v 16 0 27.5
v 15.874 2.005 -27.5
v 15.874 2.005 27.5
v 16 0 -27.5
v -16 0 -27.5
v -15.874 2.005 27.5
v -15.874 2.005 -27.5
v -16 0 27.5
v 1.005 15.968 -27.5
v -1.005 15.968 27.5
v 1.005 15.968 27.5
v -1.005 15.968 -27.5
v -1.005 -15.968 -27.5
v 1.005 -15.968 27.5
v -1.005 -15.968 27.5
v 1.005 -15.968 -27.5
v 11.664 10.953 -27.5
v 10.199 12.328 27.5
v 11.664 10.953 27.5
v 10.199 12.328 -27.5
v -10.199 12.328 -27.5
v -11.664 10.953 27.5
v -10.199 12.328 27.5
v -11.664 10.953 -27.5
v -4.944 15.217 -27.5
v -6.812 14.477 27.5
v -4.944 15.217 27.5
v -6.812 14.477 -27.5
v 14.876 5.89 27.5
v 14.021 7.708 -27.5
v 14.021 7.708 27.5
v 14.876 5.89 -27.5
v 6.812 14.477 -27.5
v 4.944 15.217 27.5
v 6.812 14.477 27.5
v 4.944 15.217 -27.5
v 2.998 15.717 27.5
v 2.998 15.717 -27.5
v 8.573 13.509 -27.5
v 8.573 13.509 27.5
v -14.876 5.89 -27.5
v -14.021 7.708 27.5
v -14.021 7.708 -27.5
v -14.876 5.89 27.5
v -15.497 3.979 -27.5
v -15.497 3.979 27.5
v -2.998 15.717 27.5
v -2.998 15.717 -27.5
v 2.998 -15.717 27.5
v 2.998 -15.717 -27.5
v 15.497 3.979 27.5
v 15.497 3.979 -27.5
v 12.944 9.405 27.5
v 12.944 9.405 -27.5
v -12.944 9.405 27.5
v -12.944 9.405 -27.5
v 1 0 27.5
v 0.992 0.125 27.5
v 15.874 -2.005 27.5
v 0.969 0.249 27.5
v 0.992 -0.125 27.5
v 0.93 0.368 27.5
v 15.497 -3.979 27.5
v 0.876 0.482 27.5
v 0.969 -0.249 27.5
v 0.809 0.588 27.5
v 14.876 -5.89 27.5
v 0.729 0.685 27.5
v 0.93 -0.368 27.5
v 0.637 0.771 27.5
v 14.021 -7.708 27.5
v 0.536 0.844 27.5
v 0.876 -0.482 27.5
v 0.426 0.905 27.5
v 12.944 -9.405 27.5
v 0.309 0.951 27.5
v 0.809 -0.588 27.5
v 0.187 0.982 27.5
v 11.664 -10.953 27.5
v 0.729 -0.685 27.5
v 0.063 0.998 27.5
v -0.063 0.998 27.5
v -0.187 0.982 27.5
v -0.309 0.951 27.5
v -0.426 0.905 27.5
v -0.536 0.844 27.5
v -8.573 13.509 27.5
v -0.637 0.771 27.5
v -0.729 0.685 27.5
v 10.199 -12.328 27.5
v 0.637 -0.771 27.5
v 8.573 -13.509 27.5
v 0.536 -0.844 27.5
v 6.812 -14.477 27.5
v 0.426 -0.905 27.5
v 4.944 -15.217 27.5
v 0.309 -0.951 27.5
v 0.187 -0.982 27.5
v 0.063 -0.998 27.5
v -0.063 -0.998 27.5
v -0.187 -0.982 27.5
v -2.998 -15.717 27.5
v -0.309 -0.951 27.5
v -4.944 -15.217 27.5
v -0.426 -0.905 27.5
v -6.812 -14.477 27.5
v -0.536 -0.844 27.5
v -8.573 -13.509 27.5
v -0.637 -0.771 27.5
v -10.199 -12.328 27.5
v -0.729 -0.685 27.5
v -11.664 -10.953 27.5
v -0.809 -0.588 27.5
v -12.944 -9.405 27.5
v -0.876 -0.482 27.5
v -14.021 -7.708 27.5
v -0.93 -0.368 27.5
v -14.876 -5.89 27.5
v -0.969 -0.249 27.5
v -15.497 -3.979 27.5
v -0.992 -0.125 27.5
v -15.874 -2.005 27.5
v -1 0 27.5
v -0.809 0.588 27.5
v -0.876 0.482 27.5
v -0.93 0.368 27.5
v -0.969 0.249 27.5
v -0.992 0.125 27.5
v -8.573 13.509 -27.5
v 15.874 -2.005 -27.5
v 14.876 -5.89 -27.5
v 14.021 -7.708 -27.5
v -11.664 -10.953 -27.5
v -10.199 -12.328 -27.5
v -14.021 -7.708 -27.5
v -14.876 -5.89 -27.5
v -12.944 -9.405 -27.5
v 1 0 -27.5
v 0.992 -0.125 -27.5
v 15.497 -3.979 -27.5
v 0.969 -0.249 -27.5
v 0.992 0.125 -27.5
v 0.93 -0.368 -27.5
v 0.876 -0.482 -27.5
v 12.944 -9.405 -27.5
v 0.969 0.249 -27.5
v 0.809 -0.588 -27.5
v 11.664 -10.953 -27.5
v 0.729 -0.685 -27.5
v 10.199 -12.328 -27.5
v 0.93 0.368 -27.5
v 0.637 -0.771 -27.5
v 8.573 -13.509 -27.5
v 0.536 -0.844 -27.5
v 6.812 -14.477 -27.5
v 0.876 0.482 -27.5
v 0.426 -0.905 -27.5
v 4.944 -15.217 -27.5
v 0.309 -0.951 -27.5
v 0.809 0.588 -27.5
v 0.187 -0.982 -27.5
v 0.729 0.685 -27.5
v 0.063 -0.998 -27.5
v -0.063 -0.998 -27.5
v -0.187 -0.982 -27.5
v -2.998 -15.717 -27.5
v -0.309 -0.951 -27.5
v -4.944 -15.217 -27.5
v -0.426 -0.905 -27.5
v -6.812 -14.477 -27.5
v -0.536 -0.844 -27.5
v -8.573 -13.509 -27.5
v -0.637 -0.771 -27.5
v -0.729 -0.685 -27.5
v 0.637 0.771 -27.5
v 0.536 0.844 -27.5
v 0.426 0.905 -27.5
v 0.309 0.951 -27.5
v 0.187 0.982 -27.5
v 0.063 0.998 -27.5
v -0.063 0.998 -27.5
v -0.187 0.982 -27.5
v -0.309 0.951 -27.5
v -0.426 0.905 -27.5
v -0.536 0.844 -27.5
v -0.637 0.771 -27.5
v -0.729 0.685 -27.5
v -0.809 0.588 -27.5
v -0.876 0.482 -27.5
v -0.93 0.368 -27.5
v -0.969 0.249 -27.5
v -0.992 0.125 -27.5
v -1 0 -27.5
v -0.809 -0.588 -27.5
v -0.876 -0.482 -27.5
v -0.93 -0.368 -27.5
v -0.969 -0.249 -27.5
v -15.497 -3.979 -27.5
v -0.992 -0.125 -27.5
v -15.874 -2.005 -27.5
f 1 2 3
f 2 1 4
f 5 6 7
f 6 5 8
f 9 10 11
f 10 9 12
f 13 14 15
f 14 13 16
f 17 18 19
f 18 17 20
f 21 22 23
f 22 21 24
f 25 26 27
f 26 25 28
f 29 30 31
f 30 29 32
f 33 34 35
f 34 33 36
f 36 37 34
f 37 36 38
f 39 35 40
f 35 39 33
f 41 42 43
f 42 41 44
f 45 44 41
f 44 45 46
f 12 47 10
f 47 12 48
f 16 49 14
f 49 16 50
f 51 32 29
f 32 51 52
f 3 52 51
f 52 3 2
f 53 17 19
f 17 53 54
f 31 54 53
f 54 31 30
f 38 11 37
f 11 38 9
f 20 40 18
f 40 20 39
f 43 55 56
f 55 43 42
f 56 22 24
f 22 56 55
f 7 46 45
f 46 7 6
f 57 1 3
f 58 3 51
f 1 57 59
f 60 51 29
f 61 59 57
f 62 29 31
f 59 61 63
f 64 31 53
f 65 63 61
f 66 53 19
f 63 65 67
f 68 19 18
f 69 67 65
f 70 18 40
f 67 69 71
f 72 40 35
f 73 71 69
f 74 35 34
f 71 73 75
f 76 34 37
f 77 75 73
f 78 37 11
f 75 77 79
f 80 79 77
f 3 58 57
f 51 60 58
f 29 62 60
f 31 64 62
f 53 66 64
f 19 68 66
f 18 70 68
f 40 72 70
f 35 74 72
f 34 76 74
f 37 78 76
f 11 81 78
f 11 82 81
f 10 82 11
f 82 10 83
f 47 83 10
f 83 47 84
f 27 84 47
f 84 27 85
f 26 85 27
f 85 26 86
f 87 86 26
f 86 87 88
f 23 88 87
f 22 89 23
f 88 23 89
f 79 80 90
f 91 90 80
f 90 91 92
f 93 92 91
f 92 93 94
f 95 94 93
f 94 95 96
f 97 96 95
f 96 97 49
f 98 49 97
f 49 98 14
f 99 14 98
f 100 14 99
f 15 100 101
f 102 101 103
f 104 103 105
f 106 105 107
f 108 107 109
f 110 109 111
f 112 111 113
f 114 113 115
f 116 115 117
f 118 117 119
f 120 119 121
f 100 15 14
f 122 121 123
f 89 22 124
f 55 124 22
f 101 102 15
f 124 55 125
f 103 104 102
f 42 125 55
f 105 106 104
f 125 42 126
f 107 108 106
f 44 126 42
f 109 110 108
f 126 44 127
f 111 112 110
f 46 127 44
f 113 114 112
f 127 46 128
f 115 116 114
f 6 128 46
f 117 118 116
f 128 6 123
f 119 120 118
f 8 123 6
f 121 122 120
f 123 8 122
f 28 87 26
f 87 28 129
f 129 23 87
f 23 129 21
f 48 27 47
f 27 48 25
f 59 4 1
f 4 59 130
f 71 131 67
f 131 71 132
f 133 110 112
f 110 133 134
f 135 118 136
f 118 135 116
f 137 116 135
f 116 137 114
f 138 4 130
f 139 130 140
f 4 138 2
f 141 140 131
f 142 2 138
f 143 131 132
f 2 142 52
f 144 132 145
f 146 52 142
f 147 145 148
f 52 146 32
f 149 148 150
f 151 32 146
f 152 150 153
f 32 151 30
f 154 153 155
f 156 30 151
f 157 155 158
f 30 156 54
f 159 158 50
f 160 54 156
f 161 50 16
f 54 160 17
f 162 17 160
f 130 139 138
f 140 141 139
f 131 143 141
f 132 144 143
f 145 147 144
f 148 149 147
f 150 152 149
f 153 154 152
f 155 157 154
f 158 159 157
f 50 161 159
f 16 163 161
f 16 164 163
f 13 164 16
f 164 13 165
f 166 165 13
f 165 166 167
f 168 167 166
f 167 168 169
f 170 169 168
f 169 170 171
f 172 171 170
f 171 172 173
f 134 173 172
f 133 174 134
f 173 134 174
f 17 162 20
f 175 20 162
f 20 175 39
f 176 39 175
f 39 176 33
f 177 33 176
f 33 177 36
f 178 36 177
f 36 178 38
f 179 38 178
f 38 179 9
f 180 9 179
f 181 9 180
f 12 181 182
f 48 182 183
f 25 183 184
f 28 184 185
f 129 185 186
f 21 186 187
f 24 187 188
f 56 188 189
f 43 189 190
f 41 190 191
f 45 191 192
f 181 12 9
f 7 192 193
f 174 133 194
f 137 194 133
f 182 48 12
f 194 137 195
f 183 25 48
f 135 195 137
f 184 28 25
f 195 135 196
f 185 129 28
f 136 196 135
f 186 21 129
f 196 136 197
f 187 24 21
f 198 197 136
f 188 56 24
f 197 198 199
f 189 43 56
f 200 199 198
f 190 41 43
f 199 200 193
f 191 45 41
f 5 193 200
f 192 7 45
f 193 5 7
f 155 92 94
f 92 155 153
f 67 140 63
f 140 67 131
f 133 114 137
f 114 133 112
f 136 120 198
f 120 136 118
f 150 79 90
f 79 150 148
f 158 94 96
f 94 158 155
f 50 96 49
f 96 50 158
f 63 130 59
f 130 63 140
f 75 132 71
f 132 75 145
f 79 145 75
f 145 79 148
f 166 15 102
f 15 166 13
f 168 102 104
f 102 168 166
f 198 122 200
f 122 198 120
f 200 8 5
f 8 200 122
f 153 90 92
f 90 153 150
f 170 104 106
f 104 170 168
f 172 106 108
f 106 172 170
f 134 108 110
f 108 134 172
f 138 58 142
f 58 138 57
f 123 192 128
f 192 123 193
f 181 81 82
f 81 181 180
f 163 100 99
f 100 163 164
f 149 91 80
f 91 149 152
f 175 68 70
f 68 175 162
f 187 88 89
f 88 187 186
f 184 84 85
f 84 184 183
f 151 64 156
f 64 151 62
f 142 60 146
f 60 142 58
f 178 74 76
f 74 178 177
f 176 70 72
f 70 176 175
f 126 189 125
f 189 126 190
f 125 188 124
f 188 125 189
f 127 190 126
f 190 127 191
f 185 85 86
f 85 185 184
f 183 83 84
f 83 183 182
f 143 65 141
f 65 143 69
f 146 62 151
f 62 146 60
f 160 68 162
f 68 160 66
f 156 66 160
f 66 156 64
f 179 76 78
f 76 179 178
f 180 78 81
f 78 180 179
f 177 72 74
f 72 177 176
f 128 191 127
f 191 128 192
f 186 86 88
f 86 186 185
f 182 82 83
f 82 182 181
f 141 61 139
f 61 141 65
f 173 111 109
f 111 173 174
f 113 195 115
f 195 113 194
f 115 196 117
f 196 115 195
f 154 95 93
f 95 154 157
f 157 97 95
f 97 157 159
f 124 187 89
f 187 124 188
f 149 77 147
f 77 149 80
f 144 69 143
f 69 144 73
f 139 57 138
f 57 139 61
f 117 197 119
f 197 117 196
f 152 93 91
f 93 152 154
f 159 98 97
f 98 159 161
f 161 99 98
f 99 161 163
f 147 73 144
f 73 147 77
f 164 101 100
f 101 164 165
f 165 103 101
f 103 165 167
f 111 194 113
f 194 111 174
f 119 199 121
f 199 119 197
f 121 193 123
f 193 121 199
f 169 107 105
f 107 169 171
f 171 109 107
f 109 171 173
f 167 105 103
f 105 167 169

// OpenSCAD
$fn = 50;


difference() {
	union() {
		translate(v = [0, 0, -27.5000000000]) {
			cylinder(h = 55, r = 16.0000000000);
		}
	}
	union() {
		translate(v = [0, 0, -100.0000000000]) {
			cylinder(h = 200, r = 1.0000000000);
		}
	}
}
